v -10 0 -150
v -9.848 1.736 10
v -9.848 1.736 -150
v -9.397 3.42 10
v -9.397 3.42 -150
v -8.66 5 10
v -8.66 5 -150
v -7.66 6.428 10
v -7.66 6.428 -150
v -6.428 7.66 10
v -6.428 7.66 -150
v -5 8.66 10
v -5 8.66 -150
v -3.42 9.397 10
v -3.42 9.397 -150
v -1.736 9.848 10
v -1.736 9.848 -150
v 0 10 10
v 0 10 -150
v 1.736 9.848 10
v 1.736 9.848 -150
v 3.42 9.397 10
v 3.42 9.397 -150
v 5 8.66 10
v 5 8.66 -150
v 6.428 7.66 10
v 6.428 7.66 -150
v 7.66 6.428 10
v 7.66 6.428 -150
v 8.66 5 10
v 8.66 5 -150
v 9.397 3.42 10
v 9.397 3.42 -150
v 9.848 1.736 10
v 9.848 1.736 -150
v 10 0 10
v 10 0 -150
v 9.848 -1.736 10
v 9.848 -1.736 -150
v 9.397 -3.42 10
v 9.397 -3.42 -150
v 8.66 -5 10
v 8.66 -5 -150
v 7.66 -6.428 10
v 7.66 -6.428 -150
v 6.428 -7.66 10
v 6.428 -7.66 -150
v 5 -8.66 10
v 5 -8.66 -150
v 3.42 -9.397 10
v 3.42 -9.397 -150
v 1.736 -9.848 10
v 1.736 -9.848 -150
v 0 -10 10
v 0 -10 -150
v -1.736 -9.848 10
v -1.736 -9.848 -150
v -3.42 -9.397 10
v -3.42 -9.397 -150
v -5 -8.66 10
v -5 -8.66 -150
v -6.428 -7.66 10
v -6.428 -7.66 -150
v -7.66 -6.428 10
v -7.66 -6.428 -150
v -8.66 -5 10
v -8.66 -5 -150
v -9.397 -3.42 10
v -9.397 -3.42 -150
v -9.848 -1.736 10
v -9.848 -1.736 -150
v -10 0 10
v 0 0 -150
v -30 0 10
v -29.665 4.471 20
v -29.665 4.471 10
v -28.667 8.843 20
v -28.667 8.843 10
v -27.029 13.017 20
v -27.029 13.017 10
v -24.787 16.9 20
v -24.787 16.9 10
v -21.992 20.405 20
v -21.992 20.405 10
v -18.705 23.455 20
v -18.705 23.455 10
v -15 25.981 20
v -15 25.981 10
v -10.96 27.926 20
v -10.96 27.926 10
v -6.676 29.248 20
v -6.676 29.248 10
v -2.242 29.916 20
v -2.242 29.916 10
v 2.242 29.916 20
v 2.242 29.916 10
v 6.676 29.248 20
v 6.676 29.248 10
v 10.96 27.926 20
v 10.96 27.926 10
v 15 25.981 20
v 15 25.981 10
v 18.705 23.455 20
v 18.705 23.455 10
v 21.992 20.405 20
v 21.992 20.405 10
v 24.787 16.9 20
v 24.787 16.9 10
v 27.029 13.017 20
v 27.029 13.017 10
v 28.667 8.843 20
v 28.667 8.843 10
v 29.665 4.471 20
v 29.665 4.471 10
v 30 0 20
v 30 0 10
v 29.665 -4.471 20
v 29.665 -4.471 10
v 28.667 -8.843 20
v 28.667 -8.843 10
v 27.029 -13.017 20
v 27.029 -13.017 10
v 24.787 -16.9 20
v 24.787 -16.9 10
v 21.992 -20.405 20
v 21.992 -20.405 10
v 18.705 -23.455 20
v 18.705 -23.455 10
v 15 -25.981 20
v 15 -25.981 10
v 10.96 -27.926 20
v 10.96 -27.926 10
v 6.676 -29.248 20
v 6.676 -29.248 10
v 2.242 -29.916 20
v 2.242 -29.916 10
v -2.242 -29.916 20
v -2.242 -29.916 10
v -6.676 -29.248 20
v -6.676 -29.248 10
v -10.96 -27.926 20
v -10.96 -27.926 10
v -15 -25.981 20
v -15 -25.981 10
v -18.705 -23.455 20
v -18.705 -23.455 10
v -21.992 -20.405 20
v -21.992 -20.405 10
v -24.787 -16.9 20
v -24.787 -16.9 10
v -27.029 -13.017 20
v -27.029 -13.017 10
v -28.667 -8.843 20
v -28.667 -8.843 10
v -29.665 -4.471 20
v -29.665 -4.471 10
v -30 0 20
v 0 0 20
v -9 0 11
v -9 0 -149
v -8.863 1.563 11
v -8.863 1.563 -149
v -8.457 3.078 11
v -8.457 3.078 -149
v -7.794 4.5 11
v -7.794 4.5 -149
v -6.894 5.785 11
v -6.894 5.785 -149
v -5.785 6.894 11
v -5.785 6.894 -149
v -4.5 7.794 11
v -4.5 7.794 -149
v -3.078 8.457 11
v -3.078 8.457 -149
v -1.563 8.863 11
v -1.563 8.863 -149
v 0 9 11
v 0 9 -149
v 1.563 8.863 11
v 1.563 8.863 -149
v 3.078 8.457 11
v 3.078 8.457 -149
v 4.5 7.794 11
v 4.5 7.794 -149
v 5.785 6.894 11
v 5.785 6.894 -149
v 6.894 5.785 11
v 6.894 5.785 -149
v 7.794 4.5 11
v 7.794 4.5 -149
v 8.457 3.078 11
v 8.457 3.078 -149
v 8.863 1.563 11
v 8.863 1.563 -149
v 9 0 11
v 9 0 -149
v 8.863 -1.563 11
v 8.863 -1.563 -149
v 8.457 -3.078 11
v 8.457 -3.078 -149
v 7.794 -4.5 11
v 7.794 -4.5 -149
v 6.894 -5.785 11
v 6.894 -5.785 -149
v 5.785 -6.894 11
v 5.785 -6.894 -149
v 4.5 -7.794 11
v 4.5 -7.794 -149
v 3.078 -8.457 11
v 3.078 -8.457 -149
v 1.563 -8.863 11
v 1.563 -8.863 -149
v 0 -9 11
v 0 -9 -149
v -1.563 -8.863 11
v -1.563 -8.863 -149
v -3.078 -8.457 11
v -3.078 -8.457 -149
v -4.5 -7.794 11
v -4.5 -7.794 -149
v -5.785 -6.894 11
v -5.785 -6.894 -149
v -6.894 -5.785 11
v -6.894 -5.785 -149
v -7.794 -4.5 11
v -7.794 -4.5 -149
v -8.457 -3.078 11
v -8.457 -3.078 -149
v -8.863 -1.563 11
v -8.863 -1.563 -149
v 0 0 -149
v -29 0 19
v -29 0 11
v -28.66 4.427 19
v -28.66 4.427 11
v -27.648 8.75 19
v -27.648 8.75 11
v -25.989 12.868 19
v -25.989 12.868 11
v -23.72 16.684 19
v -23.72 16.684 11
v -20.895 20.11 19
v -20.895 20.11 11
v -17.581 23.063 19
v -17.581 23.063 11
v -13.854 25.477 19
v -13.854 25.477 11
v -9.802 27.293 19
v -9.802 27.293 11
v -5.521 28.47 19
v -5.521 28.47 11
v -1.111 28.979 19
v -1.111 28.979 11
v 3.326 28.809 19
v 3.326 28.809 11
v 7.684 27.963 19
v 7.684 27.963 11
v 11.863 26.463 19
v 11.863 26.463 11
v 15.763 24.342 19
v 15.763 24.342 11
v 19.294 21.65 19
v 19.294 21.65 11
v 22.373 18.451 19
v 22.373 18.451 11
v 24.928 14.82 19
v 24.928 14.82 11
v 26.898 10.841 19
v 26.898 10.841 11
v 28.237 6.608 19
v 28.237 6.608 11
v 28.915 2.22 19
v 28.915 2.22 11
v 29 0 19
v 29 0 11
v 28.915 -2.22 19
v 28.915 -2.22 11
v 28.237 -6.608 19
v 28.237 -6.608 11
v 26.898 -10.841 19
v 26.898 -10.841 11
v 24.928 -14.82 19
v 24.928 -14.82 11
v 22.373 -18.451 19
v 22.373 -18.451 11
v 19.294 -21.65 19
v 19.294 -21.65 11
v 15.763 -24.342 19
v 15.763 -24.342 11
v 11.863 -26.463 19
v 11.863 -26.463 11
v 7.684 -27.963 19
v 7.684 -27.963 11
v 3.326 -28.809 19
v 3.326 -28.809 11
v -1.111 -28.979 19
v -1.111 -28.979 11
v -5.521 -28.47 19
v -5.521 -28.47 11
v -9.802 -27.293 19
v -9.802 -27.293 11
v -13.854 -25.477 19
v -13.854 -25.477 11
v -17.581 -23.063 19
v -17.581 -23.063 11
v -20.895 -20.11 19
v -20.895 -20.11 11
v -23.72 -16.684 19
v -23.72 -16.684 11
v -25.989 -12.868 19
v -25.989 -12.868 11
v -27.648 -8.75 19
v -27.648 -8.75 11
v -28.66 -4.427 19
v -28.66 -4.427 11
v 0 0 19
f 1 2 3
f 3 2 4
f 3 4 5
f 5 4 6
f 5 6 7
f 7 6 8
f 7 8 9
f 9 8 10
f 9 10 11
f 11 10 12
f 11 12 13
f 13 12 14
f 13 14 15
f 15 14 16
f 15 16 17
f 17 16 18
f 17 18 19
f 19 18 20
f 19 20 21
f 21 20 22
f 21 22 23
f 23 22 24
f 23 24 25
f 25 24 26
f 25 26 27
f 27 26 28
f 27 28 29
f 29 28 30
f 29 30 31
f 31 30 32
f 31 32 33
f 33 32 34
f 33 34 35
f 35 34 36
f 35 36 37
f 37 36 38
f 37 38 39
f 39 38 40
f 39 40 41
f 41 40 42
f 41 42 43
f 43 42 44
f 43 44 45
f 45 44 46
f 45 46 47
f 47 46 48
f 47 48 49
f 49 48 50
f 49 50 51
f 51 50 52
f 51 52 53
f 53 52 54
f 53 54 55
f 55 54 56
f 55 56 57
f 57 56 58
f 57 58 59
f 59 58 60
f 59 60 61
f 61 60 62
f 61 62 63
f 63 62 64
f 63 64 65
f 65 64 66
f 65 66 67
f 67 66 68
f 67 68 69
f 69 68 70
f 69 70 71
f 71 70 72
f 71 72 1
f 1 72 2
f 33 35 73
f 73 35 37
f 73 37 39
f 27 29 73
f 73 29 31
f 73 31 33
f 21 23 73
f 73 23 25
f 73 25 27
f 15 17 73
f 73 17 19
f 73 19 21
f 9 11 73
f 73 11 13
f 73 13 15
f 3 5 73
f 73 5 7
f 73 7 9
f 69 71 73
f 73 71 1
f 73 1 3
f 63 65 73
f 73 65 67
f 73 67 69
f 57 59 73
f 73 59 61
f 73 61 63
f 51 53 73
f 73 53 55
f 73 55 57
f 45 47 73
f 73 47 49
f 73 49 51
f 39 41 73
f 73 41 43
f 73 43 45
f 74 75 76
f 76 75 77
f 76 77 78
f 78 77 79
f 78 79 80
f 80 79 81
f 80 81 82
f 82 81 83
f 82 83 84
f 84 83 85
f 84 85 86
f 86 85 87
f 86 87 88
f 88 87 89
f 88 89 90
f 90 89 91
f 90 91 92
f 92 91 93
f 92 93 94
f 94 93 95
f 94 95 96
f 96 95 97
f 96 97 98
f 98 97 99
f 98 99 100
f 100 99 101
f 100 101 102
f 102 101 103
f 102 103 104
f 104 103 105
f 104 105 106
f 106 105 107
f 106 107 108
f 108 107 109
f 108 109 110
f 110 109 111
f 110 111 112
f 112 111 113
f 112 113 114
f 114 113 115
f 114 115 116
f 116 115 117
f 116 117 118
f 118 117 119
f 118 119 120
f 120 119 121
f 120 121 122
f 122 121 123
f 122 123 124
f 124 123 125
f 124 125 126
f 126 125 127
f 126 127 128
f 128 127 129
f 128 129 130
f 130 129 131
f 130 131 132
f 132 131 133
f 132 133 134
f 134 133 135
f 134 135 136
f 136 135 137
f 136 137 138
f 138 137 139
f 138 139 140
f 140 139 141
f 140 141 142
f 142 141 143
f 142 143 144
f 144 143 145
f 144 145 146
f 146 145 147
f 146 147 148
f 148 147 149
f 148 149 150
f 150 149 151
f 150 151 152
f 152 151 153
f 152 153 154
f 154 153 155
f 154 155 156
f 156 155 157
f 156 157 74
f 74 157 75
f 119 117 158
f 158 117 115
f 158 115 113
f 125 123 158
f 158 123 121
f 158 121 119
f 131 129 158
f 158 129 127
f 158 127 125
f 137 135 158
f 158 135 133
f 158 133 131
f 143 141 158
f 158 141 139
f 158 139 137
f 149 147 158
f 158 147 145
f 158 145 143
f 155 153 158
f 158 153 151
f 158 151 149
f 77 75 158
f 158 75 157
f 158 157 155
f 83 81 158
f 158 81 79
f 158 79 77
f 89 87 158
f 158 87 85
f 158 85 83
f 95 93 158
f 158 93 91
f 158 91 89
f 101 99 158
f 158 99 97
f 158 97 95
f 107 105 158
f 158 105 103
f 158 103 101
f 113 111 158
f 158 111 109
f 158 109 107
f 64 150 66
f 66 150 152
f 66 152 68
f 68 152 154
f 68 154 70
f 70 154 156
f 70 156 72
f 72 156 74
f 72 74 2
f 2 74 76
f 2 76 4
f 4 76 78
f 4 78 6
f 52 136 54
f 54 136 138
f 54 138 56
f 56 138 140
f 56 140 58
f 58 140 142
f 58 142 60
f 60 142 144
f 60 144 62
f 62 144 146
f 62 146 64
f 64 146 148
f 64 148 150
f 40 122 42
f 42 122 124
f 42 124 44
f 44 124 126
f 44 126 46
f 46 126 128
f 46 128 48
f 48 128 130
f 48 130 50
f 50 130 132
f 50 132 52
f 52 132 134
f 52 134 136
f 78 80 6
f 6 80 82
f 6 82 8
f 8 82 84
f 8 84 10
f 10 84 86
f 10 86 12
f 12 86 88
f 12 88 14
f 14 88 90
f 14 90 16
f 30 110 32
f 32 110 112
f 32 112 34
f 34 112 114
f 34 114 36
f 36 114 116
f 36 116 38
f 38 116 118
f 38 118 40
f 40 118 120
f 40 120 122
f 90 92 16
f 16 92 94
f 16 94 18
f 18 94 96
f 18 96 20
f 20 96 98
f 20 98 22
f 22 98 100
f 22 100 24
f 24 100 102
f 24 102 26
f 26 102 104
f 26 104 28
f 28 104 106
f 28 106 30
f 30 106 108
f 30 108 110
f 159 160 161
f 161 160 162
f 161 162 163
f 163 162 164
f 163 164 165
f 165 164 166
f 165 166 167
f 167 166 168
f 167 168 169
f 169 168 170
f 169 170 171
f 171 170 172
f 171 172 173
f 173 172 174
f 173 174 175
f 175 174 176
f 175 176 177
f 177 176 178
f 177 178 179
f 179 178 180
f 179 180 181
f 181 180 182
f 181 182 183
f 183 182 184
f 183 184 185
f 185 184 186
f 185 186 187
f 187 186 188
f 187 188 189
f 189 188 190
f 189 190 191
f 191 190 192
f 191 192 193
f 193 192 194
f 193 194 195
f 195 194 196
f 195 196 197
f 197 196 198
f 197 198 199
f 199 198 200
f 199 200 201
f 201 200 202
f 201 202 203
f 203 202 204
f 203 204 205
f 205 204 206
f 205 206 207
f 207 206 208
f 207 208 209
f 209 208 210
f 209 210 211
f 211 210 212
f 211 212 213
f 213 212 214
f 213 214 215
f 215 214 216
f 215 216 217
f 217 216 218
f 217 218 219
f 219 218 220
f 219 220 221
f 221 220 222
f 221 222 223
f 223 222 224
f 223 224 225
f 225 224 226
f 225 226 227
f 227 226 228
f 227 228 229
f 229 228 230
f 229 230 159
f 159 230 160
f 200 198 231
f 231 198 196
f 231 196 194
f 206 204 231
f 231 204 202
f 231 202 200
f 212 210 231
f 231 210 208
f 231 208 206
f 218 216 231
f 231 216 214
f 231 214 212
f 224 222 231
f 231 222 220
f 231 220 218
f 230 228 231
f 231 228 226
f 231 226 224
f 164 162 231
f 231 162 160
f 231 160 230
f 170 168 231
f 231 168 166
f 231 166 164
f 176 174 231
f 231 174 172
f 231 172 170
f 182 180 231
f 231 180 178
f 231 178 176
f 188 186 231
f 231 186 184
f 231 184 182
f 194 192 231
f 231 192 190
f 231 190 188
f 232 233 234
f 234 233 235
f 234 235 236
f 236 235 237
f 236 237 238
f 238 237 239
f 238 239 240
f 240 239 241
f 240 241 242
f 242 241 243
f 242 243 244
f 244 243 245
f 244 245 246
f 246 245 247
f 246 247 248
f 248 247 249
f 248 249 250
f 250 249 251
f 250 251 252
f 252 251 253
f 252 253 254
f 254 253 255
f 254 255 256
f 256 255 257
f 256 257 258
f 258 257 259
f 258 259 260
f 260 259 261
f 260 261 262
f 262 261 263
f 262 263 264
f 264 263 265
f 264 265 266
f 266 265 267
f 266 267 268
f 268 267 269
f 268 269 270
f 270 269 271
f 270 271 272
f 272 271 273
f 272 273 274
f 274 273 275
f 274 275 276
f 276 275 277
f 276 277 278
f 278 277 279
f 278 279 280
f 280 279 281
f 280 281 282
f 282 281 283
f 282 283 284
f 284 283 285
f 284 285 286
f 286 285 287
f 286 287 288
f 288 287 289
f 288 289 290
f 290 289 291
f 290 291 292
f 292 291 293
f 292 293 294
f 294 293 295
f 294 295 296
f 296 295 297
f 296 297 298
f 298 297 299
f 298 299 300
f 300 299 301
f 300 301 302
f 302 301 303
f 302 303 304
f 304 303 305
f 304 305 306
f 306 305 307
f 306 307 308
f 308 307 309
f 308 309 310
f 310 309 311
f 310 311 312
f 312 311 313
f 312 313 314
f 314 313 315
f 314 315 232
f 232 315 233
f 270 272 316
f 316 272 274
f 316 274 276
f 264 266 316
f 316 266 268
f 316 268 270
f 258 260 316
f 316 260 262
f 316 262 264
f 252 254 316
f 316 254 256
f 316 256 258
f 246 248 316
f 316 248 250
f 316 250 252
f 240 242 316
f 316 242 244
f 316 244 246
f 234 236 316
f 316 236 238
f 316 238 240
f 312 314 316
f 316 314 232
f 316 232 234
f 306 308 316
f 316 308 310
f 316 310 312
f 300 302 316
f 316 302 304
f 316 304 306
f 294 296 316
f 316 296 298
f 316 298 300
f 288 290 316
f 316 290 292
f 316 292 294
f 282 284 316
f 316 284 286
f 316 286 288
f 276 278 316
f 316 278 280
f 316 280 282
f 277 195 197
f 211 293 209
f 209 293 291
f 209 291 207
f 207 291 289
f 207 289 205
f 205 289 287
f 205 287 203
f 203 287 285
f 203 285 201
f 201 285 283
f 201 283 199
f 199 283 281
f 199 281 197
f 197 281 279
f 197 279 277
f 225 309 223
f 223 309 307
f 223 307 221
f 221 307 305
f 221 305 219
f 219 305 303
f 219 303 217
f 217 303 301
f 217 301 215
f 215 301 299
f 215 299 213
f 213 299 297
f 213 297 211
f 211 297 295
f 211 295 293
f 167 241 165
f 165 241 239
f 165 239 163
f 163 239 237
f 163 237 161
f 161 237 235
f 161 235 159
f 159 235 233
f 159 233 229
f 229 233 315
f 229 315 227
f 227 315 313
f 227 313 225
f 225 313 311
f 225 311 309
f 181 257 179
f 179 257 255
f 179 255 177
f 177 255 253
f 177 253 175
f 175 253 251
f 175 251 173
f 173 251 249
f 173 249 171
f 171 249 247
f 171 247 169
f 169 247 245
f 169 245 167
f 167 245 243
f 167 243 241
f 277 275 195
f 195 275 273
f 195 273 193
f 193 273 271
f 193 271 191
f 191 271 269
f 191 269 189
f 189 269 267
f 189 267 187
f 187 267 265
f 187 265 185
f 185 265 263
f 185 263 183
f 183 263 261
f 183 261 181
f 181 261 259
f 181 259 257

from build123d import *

# Parameters (mm, degrees)
BOSS_EXTRUDE1_DEPTH      = 10
BOSS_EXTRUDE1_DEPTH_BACK = 150
SKETCH1_R                = 10
SKETCH2_R                = 30
BOSS_EXTRUDE2_DEPTH      = 10
SHELL1_START             = -149
SHELL1_OUTLINE_R         = 9
SHELL1_DEPTH             = 168
SHELL1_START_2           = 11
SHELL1_2_OUTLINE_R       = 29
SHELL1_2_OUTLINE_R_2     = 9
SHELL1_2_DEPTH           = 8


# Read off the part's stored shape, not the designer's step: Shell1
with BuildPart() as part:
    # Sketch1 → Boss-Extrude1 (new, two sides: drawn at the far end of the back side and taken through both)
    with BuildSketch(Plane.XY.offset(-BOSS_EXTRUDE1_DEPTH_BACK)):
        Circle(SKETCH1_R)
    extrude(amount=BOSS_EXTRUDE1_DEPTH + BOSS_EXTRUDE1_DEPTH_BACK)

    # Sketch2 → Boss-Extrude2 (add)
    with BuildSketch(Plane.XY.offset(10)):
        Circle(SKETCH2_R)
    extrude(amount=BOSS_EXTRUDE2_DEPTH)

    # Shell1 outline → Shell1 (cut)
    with BuildSketch(Plane.XY.offset(SHELL1_START)):
        Circle(SHELL1_OUTLINE_R)
    extrude(amount=SHELL1_DEPTH, mode=Mode.SUBTRACT)

    # Shell1 2 outline → Shell1 2 (cut)
    with BuildSketch(Plane.XY.offset(SHELL1_START_2)):
        Circle(SHELL1_2_OUTLINE_R)
        Circle(SHELL1_2_OUTLINE_R_2, mode=Mode.SUBTRACT)
    extrude(amount=SHELL1_2_DEPTH, mode=Mode.SUBTRACT)


solid = part.part
